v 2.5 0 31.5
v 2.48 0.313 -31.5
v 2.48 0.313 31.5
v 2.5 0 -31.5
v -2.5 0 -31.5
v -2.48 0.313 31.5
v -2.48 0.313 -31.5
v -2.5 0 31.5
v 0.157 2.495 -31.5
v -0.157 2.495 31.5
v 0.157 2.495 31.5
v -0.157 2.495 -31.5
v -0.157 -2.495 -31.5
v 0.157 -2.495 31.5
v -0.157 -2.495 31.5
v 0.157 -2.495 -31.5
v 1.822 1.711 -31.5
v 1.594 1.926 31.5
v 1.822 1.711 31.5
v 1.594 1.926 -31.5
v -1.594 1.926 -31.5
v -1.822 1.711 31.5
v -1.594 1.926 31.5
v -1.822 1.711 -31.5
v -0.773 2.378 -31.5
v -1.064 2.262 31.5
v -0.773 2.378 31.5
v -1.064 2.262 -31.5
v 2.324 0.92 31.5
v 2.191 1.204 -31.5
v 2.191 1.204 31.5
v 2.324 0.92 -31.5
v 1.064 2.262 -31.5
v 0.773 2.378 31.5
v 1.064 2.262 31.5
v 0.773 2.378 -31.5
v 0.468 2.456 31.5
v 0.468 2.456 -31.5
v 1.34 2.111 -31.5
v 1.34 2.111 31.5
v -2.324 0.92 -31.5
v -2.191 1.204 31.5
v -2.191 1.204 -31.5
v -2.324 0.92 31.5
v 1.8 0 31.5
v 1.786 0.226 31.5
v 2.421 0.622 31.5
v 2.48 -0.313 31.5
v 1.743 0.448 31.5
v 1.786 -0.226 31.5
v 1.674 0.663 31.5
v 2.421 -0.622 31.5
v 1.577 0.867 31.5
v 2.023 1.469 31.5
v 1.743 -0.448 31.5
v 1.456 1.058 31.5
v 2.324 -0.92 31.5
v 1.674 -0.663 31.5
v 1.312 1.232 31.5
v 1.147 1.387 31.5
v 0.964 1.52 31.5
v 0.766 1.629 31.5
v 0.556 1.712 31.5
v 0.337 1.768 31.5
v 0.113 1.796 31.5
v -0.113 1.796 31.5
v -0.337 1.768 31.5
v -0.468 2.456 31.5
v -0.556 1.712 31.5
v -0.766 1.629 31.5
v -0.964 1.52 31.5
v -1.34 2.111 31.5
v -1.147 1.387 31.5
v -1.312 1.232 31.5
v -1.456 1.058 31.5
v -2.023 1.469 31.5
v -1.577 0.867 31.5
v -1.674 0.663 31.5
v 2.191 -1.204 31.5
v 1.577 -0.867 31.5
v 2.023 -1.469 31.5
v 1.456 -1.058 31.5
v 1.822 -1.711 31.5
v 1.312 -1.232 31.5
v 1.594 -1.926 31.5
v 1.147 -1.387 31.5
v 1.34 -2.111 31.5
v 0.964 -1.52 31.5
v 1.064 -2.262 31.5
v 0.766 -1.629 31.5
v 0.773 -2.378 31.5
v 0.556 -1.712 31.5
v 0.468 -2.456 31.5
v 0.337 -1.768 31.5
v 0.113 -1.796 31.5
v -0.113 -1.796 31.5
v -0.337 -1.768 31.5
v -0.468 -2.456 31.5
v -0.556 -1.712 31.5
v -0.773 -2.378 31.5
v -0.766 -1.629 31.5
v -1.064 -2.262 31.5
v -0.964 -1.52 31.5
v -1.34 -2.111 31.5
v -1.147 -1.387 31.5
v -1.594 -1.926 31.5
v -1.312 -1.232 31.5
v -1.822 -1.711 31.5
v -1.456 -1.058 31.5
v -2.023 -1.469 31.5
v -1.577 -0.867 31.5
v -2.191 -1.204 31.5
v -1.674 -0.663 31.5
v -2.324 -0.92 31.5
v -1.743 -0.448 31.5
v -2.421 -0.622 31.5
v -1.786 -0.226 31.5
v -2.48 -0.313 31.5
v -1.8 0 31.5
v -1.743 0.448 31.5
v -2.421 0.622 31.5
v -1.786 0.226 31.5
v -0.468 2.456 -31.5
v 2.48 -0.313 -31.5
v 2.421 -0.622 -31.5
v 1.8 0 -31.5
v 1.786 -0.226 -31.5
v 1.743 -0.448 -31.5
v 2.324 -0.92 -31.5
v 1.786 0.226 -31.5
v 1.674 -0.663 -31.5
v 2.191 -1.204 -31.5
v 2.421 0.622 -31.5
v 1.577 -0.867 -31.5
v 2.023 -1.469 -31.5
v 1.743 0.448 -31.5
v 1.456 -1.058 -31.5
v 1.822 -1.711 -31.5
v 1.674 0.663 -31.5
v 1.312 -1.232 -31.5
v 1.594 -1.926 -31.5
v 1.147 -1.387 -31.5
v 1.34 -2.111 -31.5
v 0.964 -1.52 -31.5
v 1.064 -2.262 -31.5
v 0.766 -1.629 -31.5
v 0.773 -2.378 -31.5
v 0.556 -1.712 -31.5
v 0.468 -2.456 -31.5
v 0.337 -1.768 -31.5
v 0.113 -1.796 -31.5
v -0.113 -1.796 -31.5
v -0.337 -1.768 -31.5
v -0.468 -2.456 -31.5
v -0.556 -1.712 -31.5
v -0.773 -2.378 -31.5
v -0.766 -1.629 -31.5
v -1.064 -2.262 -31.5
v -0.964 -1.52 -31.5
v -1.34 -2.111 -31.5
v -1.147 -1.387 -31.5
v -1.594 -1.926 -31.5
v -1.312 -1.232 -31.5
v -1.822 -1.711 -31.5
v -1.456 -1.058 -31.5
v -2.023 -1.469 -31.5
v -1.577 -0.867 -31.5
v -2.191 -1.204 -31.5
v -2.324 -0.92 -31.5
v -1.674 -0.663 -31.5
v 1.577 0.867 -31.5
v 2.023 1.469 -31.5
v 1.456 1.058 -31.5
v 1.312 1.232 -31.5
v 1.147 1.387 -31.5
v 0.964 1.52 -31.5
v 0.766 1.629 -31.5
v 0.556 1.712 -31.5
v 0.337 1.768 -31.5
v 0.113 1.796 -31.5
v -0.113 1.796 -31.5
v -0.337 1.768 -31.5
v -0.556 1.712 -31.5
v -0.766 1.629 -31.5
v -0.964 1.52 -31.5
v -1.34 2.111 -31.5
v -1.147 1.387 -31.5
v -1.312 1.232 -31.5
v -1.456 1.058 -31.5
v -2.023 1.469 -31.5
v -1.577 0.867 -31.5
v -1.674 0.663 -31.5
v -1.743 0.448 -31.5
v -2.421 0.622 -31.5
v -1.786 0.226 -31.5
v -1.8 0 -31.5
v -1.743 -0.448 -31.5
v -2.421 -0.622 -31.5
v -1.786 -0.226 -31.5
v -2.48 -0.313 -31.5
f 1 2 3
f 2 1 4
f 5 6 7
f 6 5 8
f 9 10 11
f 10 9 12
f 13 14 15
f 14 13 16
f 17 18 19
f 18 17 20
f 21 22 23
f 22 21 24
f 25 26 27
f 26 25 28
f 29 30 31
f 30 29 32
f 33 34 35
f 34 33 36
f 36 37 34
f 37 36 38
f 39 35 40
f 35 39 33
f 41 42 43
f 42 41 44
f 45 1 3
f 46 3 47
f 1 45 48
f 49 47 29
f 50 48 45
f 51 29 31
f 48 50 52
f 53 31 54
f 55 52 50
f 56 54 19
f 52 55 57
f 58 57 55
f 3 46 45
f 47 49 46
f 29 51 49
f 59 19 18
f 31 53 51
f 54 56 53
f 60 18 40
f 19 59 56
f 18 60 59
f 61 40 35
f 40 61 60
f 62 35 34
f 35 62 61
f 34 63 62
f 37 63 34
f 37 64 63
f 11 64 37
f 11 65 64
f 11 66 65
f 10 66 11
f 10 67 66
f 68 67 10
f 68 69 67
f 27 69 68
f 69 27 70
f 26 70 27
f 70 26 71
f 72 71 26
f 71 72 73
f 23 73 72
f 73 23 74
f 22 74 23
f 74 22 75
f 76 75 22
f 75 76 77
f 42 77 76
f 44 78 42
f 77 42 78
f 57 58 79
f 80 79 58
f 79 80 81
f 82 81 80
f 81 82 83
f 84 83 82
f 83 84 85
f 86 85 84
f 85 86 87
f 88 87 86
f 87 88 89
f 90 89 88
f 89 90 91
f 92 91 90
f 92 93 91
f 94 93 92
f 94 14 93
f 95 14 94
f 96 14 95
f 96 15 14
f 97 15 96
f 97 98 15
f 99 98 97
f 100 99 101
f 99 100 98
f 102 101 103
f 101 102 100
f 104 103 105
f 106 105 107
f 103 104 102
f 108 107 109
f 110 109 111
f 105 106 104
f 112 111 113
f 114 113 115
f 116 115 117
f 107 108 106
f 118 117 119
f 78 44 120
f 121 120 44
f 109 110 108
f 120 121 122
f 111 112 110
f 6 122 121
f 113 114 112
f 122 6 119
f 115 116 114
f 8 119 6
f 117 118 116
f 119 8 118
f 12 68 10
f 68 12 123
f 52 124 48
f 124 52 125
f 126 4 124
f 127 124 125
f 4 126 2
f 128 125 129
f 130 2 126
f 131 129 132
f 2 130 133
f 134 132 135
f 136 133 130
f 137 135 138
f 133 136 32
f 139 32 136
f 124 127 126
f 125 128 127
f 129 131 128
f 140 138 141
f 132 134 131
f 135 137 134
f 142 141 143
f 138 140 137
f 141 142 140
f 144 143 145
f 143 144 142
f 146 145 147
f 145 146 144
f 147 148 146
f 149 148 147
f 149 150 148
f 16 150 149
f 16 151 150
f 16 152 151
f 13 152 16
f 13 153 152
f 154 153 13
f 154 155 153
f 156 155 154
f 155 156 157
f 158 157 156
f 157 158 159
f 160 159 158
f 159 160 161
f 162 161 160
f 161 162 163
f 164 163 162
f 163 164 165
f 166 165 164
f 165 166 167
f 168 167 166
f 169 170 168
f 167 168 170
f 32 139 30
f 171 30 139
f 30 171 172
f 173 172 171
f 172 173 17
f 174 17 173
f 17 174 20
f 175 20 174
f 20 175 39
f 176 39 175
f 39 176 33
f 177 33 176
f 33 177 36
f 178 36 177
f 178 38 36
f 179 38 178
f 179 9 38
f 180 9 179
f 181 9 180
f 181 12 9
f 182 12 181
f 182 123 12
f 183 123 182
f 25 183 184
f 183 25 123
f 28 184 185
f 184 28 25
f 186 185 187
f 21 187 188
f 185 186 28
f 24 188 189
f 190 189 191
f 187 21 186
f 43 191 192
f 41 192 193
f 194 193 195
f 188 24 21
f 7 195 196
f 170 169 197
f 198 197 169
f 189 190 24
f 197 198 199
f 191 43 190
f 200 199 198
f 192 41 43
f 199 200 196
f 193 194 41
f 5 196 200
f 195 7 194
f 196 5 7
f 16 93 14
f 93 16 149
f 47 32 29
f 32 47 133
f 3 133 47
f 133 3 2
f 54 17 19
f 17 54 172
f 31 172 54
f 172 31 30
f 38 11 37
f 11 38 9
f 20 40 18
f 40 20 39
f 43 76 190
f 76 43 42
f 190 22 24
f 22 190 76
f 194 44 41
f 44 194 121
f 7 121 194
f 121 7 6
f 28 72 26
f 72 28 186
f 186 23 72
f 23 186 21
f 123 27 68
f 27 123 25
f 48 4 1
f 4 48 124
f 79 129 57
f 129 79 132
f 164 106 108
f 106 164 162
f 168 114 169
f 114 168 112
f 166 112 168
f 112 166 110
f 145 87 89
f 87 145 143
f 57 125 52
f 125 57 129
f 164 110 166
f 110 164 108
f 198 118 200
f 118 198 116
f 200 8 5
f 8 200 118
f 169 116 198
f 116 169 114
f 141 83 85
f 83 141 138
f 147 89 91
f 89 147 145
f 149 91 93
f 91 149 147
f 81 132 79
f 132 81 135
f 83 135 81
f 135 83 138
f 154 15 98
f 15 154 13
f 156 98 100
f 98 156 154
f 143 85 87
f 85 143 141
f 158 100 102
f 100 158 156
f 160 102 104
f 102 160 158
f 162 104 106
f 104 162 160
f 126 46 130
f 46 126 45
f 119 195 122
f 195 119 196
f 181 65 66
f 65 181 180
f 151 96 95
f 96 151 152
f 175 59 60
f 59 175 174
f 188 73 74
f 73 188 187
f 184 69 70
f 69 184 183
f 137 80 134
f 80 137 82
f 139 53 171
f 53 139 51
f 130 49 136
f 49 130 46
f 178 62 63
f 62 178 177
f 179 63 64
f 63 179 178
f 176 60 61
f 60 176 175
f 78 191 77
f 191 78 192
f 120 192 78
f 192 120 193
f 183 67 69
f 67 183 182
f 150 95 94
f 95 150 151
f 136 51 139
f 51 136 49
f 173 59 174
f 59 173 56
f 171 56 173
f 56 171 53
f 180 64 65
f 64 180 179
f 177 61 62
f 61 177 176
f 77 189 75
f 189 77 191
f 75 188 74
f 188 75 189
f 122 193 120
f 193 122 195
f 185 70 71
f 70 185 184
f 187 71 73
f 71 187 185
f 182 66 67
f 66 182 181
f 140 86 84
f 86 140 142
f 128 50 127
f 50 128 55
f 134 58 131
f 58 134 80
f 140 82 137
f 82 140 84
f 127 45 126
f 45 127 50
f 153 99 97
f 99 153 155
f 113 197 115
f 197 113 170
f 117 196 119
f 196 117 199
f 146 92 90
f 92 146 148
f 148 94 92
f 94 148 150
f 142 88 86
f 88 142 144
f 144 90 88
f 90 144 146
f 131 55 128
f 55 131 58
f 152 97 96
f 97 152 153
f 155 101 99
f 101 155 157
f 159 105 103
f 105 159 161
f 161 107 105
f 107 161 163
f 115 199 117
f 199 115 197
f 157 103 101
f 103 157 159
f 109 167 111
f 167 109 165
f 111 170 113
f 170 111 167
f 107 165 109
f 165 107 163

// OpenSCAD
$fn = 50;


difference() {
	union() {
		translate(v = [0, 0, -31.5000000000]) {
			cylinder(h = 63, r = 2.5000000000);
		}
	}
	union() {
		translate(v = [0, 0, -100.0000000000]) {
			cylinder(h = 200, r = 1.8000000000);
		}
	}
}
